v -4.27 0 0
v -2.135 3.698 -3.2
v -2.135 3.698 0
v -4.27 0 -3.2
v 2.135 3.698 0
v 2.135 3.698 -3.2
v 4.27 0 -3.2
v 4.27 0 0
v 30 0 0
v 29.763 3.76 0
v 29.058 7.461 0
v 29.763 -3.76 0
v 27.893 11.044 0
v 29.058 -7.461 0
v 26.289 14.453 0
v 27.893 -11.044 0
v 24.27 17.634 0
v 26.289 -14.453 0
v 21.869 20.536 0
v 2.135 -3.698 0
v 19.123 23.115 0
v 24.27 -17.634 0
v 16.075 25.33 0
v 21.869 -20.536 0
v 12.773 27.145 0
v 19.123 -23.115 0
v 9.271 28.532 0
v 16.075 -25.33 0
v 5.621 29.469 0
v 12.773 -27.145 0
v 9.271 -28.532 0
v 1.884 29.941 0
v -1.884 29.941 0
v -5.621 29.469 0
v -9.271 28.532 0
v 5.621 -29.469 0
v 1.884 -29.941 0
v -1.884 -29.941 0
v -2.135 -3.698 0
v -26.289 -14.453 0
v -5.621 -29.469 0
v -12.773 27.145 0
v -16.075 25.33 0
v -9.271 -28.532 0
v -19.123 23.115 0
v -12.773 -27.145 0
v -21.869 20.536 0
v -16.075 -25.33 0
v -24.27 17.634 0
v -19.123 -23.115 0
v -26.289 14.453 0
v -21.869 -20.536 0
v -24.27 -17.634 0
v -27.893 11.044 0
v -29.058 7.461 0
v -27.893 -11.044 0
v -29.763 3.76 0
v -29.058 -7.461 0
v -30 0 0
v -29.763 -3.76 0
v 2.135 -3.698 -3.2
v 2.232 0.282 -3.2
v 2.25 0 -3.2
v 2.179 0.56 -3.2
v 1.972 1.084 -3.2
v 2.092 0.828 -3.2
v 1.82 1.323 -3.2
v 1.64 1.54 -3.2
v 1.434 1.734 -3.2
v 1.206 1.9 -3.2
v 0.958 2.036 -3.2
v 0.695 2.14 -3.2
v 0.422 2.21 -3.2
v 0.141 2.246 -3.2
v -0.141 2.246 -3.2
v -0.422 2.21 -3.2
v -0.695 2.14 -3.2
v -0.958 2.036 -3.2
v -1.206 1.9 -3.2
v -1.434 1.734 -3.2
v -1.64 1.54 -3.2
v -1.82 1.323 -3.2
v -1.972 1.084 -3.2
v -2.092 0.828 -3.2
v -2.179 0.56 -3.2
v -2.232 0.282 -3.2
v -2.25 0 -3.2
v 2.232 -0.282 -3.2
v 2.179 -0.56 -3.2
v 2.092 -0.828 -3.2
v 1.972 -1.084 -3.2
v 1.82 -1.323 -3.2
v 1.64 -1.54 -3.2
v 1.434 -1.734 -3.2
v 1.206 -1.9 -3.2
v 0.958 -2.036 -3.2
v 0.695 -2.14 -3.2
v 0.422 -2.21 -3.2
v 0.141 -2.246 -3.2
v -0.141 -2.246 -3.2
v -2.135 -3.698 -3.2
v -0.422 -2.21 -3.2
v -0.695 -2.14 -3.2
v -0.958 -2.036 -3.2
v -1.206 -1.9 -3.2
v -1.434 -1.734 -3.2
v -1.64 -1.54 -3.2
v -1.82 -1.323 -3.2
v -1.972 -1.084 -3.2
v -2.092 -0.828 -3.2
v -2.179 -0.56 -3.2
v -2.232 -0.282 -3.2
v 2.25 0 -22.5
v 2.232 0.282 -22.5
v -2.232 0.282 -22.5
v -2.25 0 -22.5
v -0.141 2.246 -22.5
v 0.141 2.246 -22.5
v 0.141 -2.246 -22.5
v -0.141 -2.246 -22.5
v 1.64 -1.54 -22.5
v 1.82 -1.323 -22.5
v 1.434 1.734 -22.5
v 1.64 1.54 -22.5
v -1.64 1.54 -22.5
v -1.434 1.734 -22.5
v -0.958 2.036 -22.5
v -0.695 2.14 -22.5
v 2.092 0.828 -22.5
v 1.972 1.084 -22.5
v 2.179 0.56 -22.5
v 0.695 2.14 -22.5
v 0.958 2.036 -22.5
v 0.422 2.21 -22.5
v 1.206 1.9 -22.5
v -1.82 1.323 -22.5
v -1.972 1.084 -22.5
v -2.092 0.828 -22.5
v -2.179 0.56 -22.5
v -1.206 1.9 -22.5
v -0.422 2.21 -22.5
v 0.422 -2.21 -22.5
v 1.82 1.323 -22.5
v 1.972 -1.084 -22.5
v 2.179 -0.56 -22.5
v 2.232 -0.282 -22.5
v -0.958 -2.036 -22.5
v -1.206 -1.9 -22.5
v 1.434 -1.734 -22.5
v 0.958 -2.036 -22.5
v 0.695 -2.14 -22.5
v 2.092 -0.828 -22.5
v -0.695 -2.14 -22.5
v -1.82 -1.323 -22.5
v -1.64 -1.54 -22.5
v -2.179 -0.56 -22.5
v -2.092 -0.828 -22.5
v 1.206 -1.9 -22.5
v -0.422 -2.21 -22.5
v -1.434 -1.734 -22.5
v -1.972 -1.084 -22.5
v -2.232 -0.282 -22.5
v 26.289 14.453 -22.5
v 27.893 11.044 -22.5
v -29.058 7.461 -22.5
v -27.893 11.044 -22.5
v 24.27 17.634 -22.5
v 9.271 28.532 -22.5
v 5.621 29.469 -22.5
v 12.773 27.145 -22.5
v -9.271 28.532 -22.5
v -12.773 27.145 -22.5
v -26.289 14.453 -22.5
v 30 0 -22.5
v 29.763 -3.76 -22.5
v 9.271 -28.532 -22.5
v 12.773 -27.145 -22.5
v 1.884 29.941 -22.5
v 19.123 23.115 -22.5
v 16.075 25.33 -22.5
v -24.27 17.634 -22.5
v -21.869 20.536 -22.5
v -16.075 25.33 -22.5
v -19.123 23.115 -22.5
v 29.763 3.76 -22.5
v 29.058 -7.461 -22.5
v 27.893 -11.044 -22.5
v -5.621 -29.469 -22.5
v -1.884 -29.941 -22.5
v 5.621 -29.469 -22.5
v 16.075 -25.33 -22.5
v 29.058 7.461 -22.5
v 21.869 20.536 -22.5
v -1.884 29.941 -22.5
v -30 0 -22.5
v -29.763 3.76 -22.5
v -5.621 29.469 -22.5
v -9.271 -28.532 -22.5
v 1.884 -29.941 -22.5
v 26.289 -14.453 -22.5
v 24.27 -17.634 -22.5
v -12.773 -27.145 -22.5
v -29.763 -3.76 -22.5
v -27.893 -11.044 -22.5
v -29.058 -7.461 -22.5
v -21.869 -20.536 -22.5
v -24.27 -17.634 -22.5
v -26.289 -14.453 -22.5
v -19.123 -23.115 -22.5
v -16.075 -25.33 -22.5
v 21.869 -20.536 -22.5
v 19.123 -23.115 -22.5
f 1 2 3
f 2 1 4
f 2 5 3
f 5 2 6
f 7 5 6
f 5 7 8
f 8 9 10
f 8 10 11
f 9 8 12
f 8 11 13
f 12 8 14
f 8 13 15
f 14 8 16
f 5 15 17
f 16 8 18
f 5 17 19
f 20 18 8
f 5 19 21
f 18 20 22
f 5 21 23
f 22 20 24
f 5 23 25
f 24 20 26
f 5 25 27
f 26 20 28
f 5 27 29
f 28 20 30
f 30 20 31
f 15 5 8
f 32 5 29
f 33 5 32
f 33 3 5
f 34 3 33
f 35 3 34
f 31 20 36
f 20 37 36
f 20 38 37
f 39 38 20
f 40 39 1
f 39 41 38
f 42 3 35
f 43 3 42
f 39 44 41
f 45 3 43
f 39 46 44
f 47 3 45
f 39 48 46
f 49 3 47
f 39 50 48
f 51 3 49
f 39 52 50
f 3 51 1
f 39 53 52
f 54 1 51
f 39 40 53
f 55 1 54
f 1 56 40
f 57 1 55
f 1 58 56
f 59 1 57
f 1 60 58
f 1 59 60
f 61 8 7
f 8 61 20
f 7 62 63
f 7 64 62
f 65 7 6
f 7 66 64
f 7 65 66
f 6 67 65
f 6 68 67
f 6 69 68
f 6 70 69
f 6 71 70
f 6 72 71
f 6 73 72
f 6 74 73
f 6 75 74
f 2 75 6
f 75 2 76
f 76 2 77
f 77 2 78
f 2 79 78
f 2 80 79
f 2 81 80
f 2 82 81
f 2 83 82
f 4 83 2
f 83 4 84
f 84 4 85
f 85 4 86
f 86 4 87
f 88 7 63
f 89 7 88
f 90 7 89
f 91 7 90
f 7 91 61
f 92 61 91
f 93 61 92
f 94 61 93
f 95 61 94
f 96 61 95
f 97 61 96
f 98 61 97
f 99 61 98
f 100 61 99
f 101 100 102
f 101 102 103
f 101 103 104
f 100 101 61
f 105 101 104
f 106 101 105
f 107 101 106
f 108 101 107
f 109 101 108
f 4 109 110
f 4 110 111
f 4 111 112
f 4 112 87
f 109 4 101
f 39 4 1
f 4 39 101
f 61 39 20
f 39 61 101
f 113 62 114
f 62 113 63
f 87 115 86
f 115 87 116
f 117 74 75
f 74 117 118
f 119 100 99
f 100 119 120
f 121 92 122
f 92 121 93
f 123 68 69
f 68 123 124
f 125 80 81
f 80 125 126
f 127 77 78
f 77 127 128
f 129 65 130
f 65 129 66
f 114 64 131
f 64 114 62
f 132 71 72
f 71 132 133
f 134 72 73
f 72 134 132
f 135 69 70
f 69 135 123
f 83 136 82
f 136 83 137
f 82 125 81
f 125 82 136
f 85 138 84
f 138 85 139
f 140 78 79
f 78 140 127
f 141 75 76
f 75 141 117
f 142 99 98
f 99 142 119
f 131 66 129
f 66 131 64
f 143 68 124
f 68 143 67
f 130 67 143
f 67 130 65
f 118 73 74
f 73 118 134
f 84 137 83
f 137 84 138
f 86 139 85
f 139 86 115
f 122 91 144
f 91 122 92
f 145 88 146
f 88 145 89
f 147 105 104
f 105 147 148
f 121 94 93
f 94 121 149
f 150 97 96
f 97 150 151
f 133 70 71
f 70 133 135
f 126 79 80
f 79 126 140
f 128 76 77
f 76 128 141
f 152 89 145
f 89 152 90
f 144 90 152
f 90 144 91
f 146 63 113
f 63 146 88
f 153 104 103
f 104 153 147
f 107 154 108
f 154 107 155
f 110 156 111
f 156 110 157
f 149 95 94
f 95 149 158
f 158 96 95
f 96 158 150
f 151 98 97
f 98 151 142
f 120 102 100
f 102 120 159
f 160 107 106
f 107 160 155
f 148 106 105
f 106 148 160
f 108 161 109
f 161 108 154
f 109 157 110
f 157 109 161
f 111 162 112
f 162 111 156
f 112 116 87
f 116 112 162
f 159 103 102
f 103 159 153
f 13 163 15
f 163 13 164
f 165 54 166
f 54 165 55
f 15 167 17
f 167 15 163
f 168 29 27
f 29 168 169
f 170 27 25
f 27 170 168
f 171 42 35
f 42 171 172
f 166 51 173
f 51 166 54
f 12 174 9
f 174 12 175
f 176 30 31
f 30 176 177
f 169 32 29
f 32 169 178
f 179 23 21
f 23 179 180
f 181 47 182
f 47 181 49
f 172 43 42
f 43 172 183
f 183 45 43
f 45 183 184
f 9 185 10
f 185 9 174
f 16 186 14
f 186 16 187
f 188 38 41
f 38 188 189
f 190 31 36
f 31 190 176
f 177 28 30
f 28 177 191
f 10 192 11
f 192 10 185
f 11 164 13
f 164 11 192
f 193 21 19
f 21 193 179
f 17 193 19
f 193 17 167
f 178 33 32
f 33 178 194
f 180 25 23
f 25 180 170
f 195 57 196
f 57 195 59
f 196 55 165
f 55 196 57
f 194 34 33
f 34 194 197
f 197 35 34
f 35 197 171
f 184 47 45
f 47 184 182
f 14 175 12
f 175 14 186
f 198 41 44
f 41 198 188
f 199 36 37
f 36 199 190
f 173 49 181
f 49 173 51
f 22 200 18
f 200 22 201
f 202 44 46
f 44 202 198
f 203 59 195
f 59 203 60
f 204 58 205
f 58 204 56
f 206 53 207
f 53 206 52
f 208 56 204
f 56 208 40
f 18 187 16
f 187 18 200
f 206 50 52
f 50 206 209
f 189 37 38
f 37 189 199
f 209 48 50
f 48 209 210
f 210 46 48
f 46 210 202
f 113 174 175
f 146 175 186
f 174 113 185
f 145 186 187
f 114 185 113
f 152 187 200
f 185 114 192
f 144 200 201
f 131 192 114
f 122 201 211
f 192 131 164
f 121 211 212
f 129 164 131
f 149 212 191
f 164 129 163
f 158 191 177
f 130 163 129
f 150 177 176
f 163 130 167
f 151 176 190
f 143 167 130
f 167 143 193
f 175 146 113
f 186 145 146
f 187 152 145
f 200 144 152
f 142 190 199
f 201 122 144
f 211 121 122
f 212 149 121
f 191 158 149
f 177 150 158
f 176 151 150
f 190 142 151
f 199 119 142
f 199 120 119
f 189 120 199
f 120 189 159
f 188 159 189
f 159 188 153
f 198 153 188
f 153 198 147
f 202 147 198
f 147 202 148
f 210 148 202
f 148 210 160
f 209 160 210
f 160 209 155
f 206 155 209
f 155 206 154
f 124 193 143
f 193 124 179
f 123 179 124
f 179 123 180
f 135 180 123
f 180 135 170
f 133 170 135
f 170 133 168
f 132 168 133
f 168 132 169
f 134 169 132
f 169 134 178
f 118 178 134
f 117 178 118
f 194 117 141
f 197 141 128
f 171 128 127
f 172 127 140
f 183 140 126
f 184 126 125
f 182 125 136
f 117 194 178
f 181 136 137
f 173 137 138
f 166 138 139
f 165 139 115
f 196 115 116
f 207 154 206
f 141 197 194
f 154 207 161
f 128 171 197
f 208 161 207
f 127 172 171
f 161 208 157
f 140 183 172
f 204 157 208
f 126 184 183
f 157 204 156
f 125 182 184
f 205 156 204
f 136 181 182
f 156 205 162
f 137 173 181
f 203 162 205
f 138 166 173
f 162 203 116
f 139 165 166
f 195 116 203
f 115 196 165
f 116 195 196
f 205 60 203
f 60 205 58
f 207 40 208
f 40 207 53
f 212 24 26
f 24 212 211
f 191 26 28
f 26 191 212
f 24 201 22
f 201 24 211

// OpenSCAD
$fn = 50;


difference() {
	union() {
		translate(v = [0, 0, -22.5000000000]) {
			cylinder(h = 22.5000000000, r = 30.0000000000);
		}
	}
	union() {
		translate(v = [0, 0, 0]) {
			rotate(a = [0, 0, 0]) {
				difference() {
					union() {
						translate(v = [0, 0, -3.2000000000]) {
							linear_extrude(height = 3.2000000000) {
								polygon(points = [[4.2698000000, 0.0000000000], [2.1349000000, 3.6977552691], [-2.1349000000, 3.6977552691], [-4.2698000000, 0.0000000000], [-2.1349000000, -3.6977552691], [2.1349000000, -3.6977552691]]);
							}
						}
					}
					union();
				}
			}
		}
		#translate(v = [0, 0, -100.0000000000]) {
			cylinder(h = 200, r = 2.2500000000);
		}
	}
}
